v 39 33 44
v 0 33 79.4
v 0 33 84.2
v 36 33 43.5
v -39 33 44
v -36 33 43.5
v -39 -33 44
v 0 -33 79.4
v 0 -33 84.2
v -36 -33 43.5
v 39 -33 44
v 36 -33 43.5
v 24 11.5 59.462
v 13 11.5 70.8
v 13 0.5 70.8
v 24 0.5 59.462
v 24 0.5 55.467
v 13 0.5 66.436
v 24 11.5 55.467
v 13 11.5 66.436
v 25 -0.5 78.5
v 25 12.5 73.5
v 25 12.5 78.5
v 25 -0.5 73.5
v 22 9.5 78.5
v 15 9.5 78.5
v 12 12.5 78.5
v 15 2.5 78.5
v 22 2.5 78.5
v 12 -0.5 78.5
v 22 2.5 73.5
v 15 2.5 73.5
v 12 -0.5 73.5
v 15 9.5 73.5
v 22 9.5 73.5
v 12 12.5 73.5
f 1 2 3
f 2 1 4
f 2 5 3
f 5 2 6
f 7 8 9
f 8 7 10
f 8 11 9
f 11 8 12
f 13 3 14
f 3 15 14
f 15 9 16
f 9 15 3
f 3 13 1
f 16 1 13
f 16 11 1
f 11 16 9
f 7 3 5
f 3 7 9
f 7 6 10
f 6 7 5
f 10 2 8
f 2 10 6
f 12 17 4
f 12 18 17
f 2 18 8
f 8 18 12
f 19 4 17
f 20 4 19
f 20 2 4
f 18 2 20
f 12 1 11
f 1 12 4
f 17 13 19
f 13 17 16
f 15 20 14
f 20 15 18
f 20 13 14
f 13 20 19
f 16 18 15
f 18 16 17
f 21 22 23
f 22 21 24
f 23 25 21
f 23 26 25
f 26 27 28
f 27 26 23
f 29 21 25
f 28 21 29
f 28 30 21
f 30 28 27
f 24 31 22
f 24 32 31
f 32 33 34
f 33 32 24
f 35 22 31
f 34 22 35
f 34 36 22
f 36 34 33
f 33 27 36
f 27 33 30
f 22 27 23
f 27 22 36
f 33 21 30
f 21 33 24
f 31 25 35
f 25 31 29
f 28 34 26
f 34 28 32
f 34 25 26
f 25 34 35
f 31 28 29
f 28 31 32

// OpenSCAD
// file: comun.scad
// Impronta 3D — Casita farol nevada (diseño propio, 2 colores). Casita hueca con ventanas y puerta caladas:
// con una vela LED adentro, la luz sale por las ventanas. Techo y chimenea nevados en blanco.
// Se imprime parada, sin soportes (techo a 45°, abierta abajo para meter la vela).
w = 74; d = 62; hp = 46; pared = 2.2; $fn = 48;
ht = w / 2;   // alto del techo a 45°
module volumen(o = 0) translate([0, 0, 0]) rotate([90, 0, 0]) translate([0, 0, -d / 2 + o]) linear_extrude(d - 2 * o)
    polygon([[-w / 2 + o, 0], [w / 2 - o, 0], [w / 2 - o, hp], [0, hp + ht - o * 1.41], [-w / 2 + o, hp]]);
module ventana(x, z) translate([x, 0, z]) rotate([90, 0, 0]) linear_extrude(d + 10, center = true) difference() {
    hull() { translate([-6, -8]) square([12, 12]); translate([0, 5]) circle(r = 6); }
    square([1.6, 30], center = true); translate([0, -1]) square([14, 1.6], center = true);
}
module nieve() intersection() {
    translate([0, 0, 0]) rotate([90, 0, 0]) translate([0, 0, -d / 2 - 2]) linear_extrude(d + 4)
        polygon([[-w / 2 - 2, hp - 2], [0, hp + ht + 1.2], [w / 2 + 2, hp - 2], [w / 2 - 1, hp - 2.5], [0, hp + ht - 3.6], [-w / 2 + 1, hp - 2.5]]);
    cube([w + 10, d + 4, 300], center = true);
}
module chimenea() translate([w / 4, 6, hp + ht / 2 - 4]) { cube([11, 11, 24], center = true); }
// main file
include <comun.scad>
// nieve del techo y de la chimenea, en blanco
difference() { nieve(); translate([w / 4 - 5.5, 0.5, hp]) cube([11, 11, 40]); }
translate([w / 4 - 5.5 - 1, -0.5, hp + ht / 2 + 9]) difference() { cube([13, 13, 5]); translate([3, 3, -1]) cube([7, 7, 7]); }
